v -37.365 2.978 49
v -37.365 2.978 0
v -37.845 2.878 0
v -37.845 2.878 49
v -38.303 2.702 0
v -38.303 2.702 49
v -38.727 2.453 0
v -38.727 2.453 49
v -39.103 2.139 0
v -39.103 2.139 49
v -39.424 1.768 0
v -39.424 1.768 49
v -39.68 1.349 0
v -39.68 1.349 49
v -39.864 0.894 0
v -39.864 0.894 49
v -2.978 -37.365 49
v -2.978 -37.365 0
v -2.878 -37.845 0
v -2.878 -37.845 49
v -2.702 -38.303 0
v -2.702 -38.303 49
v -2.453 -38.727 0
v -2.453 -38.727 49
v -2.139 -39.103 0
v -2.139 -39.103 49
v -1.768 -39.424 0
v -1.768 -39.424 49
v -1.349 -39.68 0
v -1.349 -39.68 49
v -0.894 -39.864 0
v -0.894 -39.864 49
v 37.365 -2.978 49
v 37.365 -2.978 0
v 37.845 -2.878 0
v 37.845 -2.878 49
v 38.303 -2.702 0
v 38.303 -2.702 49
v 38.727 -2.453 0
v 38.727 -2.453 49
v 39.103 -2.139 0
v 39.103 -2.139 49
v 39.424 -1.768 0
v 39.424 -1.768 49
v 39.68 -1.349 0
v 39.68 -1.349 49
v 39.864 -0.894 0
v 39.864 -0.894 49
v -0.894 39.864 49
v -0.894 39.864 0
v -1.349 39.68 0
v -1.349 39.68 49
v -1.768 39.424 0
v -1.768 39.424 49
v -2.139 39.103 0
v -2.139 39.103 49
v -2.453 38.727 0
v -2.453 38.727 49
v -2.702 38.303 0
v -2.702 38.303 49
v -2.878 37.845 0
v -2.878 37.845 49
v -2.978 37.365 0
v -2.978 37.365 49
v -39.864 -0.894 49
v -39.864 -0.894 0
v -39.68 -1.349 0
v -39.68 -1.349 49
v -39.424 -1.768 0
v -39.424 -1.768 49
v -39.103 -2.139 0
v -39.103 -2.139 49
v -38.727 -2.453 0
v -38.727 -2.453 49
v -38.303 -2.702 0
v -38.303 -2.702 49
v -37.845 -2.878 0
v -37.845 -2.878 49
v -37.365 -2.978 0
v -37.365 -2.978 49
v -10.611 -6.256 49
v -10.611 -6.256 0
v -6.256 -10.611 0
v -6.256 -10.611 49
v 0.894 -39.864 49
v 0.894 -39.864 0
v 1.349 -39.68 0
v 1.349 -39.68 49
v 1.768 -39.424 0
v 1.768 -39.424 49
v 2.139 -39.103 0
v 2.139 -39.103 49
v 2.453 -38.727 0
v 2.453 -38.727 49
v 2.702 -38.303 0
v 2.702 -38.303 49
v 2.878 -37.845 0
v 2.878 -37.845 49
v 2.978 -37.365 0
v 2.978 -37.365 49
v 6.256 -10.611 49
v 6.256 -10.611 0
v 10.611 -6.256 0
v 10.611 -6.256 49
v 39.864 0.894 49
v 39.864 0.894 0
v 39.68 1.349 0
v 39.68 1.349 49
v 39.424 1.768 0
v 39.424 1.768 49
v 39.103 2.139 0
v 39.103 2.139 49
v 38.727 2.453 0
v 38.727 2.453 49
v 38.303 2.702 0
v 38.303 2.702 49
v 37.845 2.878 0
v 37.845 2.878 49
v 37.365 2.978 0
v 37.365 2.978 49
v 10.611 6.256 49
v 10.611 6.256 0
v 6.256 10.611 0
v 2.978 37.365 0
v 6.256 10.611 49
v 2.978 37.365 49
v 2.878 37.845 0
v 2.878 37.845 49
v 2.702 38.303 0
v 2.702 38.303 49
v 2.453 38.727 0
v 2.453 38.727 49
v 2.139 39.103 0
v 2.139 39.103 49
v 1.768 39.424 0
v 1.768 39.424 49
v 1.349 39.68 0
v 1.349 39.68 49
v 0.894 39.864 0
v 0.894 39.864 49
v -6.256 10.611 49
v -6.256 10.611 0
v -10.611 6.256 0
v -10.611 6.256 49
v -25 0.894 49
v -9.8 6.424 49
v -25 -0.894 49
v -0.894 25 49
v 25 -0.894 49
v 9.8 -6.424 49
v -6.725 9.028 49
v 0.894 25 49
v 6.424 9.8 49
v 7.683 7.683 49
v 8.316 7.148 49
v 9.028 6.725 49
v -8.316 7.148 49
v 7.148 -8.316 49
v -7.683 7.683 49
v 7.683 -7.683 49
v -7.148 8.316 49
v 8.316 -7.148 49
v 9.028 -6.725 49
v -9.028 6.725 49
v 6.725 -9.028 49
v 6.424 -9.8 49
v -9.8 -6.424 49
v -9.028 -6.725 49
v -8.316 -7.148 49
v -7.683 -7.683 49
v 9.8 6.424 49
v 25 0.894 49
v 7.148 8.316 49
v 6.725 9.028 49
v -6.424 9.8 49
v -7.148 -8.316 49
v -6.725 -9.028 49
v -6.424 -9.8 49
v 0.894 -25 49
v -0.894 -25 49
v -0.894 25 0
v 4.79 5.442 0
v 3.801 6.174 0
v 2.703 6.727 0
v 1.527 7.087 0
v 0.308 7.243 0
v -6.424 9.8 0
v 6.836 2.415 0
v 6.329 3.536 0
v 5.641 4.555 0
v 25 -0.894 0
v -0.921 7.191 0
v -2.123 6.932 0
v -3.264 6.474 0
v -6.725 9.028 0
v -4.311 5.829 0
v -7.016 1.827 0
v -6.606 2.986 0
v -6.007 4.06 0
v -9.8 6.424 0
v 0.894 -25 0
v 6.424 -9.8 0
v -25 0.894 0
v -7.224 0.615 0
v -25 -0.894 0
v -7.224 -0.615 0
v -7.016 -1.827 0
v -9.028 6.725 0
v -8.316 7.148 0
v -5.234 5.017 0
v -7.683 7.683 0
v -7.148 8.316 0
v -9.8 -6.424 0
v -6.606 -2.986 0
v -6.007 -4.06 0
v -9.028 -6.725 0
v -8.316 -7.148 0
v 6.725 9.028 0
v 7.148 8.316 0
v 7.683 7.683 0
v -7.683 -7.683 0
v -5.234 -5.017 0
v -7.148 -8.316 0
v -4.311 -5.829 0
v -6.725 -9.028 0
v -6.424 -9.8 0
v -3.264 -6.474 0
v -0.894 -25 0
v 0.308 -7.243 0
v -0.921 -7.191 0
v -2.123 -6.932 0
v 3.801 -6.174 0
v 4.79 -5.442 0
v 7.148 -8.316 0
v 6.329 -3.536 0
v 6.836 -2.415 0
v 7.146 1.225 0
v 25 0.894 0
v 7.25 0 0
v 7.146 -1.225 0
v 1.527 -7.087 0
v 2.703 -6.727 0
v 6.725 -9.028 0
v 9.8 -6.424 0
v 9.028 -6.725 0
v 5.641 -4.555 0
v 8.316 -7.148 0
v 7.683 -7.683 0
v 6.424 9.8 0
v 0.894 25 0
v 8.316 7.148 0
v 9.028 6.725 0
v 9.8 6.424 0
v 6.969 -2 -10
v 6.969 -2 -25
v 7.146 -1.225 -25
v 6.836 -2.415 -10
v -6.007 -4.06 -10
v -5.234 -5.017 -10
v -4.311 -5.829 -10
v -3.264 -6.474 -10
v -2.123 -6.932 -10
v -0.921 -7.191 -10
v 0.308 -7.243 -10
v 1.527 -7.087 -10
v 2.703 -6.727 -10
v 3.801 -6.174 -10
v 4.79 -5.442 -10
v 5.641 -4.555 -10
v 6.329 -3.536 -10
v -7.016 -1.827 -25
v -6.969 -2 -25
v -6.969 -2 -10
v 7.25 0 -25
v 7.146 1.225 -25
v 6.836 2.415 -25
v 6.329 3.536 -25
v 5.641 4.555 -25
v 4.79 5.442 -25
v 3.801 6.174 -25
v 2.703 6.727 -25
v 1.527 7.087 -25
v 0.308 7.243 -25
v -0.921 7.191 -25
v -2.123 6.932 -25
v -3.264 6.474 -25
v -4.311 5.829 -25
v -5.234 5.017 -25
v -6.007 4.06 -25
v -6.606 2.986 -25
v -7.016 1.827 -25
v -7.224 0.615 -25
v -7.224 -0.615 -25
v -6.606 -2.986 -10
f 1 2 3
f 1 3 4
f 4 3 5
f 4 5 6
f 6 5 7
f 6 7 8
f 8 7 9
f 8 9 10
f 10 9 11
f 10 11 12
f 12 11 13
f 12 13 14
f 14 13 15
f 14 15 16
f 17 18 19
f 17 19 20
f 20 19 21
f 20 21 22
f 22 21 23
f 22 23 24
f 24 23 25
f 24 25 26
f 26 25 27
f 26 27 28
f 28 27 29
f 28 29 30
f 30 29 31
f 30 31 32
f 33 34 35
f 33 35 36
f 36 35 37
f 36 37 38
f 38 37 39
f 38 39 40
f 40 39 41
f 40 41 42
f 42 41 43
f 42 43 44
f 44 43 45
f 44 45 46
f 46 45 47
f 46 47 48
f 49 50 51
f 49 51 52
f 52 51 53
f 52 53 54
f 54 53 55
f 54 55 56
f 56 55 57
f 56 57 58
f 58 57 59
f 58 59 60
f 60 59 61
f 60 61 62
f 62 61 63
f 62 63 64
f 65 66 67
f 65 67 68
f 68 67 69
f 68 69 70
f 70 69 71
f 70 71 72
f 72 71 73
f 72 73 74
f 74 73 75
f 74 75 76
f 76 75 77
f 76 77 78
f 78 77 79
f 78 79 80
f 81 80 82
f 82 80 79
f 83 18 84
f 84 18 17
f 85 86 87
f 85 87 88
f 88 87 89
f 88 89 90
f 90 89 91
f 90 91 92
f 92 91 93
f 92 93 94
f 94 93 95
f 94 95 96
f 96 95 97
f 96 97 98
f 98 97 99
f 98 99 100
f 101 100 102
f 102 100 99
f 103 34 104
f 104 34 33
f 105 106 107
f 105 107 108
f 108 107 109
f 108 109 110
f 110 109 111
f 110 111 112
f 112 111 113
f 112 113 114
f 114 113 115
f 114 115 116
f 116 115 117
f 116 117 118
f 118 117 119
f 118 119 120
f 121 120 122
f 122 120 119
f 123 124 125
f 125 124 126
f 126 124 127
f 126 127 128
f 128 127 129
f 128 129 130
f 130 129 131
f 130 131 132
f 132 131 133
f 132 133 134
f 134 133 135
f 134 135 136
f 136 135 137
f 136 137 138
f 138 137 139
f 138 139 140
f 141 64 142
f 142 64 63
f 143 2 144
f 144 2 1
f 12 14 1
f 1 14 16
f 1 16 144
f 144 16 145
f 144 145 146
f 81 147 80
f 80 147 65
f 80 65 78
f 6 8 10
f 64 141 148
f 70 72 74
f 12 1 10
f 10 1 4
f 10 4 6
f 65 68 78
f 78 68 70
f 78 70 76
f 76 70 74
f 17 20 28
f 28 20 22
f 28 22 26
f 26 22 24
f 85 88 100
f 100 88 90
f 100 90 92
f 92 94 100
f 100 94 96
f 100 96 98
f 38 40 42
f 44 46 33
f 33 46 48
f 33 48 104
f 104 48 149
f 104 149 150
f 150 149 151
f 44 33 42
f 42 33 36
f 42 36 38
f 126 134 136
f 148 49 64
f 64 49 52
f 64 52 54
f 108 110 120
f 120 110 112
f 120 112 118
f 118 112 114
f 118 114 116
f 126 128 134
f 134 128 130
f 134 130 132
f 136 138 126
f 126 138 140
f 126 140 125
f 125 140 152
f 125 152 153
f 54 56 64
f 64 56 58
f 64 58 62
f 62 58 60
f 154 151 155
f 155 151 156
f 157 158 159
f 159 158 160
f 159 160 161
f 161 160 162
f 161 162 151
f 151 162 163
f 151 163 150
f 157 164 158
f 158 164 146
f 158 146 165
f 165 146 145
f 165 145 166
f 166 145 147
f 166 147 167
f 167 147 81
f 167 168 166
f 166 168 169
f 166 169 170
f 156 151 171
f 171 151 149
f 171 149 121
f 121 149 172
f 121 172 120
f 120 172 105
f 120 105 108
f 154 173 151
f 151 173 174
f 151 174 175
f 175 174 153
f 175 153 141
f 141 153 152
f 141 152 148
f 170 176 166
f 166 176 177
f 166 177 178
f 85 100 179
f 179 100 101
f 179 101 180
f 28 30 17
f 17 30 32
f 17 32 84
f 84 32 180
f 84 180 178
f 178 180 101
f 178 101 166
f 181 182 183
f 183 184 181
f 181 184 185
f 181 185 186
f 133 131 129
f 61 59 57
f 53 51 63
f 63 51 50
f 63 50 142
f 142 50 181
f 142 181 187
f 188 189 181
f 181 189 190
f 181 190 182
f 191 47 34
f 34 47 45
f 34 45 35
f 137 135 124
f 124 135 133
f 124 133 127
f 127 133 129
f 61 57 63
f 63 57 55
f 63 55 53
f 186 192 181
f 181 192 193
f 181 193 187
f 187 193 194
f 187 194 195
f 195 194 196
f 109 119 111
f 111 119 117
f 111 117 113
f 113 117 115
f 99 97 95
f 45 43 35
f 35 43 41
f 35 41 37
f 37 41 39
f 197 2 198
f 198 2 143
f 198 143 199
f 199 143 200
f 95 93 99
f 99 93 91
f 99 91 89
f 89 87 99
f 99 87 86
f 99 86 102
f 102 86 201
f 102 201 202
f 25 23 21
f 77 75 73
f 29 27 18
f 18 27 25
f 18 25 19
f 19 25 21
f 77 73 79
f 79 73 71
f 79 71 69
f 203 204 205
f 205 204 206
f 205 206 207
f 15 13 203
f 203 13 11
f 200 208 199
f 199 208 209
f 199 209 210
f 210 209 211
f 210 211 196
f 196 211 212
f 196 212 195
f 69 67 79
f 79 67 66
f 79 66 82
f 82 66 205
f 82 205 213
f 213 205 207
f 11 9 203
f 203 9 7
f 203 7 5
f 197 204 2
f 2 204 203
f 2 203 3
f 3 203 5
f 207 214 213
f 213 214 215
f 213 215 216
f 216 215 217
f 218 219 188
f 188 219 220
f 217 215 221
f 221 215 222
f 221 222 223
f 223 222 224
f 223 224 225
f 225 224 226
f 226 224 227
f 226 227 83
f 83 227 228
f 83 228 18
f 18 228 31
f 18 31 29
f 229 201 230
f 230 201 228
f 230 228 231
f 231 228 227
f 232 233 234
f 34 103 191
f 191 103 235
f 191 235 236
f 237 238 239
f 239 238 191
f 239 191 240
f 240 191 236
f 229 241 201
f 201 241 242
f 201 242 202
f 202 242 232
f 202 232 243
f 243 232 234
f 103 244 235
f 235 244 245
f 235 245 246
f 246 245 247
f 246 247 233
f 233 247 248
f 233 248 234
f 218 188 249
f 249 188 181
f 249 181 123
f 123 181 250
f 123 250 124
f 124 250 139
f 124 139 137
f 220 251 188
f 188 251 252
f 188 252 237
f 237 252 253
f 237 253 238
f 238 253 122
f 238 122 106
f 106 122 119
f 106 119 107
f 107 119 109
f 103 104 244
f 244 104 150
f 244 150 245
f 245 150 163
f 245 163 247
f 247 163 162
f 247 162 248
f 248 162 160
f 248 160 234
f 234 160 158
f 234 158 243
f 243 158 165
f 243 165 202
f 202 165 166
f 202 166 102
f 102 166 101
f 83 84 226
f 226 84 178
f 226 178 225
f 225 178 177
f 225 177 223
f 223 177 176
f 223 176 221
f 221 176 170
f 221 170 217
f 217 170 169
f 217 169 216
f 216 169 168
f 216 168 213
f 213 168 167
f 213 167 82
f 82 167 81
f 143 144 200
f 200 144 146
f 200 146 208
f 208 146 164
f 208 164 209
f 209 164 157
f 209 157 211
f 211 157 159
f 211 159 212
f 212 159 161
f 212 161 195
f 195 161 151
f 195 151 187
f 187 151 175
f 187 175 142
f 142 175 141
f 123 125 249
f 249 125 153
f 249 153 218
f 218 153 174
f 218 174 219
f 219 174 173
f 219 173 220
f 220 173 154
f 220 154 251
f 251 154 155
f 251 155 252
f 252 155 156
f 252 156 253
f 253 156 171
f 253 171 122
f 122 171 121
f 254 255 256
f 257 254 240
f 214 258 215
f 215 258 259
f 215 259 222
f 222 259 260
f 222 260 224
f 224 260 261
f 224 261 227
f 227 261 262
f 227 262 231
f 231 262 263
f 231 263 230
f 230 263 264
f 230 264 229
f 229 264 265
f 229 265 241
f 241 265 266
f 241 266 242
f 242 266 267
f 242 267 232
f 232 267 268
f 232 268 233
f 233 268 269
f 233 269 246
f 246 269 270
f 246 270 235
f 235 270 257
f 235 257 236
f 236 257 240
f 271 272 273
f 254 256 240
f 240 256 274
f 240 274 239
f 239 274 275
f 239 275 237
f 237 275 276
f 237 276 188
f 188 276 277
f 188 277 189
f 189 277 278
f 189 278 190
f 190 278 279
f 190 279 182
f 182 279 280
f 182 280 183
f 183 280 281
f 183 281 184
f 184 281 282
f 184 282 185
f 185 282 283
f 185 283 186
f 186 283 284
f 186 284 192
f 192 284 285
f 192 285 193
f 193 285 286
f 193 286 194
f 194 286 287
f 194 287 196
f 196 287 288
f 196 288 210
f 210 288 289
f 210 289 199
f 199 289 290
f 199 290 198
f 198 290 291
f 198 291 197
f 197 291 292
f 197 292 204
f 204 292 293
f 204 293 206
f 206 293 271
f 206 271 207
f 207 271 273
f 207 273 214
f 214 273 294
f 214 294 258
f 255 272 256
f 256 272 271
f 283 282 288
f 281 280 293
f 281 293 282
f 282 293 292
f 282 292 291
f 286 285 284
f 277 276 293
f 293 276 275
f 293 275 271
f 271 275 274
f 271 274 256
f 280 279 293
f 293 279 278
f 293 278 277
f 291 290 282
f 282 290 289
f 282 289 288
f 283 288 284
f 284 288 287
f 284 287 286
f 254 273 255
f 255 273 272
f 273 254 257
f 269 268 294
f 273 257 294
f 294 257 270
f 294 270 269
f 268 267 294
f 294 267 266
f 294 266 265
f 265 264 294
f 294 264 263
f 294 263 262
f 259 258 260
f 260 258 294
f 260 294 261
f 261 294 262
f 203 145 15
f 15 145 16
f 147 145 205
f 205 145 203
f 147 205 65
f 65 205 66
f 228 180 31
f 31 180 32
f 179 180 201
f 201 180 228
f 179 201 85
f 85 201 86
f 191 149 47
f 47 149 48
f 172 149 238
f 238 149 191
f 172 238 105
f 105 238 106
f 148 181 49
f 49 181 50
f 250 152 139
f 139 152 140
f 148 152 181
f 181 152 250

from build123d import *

# Parameters (mm, degrees)
BOSS_EXTRUDE1_DEPTH = 49
FILLET1_R           = 5
SKETCH2_R           = 7.25
BOSS_EXTRUDE2_DEPTH = 25
CUT_EXTRUDE1_START  = -15
CUT_EXTRUDE1_DEPTH  = 15
SKETCH4_W           = 25
SKETCH4_H           = 1.7875
SKETCH4_W_2         = 1.7875
SKETCH4_H_2         = 25
CUT_EXTRUDE2_DEPTH  = 49


with BuildPart() as part:
    # Sketch1 → Boss-Extrude1 (new body)
    with BuildSketch(Plane.XY):
        with BuildLine():
            Line((-6.731298149, 6.731298149), (-2.97772961, 37.364864865))
            ThreePointArc((-2.97772961, 37.364864865), (0, 40), (2.97772961, 37.364864865))
            Line((2.97772961, 37.364864865), (6.731298149, 6.731298149))
            Line((6.731298149, 6.731298149), (37.364864865, 2.97772961))
            ThreePointArc((37.364864865, 2.97772961), (40, 0), (37.364864865, -2.97772961))
            Line((37.364864865, -2.97772961), (6.731298149, -6.731298149))
            Line((6.731298149, -6.731298149), (2.97772961, -37.364864865))
            ThreePointArc((2.97772961, -37.364864865), (0, -40), (-2.97772961, -37.364864865))
            Line((-2.97772961, -37.364864865), (-6.731298149, -6.731298149))
            Line((-6.731298149, -6.731298149), (-37.364864865, -2.97772961))
            ThreePointArc((-37.364864865, -2.97772961), (-40, 0), (-37.364864865, 2.97772961))
            Line((-37.364864865, 2.97772961), (-6.731298149, 6.731298149))
        make_face()
    extrude(amount=BOSS_EXTRUDE1_DEPTH)

    # Fillet1
    fillet1_edges = [part.edges().sort_by_distance(p)[0] for p in [
        (-6.731298149, 6.731298149, 24.5),
        (6.731298149, 6.731298149, 24.5),
        (6.731298149, -6.731298149, 24.5),
        (-6.731298149, -6.731298149, 24.5),
    ]]
    fillet(fillet1_edges, radius=FILLET1_R)

    # Sketch2 → Boss-Extrude2 (add)
    with BuildSketch(Plane(origin=(0, 0, 0), x_dir=(-1, 0, 0), z_dir=(0, 0, -1))):
        with Locations(Location((0, 0, 0), (0, 0, 180))):
            Circle(SKETCH2_R)
    extrude(amount=BOSS_EXTRUDE2_DEPTH)

    # Sketch3 → Cut-Extrude1 (cut)
    with BuildSketch(Plane(origin=(0, 0, -25), x_dir=(-1, 0, 0), z_dir=(0, 0, -1)).offset(CUT_EXTRUDE1_START)):
        with BuildLine():
            Line((6.968679932, -2), (-6.968679932, -2))
            ThreePointArc((-6.968679932, -2), (0, -7.25), (6.968679932, -2))
        make_face()
    extrude(amount=CUT_EXTRUDE1_DEPTH, mode=Mode.SUBTRACT)

    # Sketch4 → Cut-Extrude2 (cut)
    with BuildSketch(Plane.XY.offset(49)):
        with Locations((37.5, 0)):
            Rectangle(SKETCH4_W, SKETCH4_H)
        with Locations((0, 37.5)):
            Rectangle(SKETCH4_W_2, SKETCH4_H_2)
        with Locations((0, -37.5)):
            Rectangle(SKETCH4_W_2, SKETCH4_H_2)
        with Locations((-37.5, 0)):
            Rectangle(SKETCH4_W, SKETCH4_H)
    extrude(amount=-CUT_EXTRUDE2_DEPTH, mode=Mode.SUBTRACT)


solid = part.part
